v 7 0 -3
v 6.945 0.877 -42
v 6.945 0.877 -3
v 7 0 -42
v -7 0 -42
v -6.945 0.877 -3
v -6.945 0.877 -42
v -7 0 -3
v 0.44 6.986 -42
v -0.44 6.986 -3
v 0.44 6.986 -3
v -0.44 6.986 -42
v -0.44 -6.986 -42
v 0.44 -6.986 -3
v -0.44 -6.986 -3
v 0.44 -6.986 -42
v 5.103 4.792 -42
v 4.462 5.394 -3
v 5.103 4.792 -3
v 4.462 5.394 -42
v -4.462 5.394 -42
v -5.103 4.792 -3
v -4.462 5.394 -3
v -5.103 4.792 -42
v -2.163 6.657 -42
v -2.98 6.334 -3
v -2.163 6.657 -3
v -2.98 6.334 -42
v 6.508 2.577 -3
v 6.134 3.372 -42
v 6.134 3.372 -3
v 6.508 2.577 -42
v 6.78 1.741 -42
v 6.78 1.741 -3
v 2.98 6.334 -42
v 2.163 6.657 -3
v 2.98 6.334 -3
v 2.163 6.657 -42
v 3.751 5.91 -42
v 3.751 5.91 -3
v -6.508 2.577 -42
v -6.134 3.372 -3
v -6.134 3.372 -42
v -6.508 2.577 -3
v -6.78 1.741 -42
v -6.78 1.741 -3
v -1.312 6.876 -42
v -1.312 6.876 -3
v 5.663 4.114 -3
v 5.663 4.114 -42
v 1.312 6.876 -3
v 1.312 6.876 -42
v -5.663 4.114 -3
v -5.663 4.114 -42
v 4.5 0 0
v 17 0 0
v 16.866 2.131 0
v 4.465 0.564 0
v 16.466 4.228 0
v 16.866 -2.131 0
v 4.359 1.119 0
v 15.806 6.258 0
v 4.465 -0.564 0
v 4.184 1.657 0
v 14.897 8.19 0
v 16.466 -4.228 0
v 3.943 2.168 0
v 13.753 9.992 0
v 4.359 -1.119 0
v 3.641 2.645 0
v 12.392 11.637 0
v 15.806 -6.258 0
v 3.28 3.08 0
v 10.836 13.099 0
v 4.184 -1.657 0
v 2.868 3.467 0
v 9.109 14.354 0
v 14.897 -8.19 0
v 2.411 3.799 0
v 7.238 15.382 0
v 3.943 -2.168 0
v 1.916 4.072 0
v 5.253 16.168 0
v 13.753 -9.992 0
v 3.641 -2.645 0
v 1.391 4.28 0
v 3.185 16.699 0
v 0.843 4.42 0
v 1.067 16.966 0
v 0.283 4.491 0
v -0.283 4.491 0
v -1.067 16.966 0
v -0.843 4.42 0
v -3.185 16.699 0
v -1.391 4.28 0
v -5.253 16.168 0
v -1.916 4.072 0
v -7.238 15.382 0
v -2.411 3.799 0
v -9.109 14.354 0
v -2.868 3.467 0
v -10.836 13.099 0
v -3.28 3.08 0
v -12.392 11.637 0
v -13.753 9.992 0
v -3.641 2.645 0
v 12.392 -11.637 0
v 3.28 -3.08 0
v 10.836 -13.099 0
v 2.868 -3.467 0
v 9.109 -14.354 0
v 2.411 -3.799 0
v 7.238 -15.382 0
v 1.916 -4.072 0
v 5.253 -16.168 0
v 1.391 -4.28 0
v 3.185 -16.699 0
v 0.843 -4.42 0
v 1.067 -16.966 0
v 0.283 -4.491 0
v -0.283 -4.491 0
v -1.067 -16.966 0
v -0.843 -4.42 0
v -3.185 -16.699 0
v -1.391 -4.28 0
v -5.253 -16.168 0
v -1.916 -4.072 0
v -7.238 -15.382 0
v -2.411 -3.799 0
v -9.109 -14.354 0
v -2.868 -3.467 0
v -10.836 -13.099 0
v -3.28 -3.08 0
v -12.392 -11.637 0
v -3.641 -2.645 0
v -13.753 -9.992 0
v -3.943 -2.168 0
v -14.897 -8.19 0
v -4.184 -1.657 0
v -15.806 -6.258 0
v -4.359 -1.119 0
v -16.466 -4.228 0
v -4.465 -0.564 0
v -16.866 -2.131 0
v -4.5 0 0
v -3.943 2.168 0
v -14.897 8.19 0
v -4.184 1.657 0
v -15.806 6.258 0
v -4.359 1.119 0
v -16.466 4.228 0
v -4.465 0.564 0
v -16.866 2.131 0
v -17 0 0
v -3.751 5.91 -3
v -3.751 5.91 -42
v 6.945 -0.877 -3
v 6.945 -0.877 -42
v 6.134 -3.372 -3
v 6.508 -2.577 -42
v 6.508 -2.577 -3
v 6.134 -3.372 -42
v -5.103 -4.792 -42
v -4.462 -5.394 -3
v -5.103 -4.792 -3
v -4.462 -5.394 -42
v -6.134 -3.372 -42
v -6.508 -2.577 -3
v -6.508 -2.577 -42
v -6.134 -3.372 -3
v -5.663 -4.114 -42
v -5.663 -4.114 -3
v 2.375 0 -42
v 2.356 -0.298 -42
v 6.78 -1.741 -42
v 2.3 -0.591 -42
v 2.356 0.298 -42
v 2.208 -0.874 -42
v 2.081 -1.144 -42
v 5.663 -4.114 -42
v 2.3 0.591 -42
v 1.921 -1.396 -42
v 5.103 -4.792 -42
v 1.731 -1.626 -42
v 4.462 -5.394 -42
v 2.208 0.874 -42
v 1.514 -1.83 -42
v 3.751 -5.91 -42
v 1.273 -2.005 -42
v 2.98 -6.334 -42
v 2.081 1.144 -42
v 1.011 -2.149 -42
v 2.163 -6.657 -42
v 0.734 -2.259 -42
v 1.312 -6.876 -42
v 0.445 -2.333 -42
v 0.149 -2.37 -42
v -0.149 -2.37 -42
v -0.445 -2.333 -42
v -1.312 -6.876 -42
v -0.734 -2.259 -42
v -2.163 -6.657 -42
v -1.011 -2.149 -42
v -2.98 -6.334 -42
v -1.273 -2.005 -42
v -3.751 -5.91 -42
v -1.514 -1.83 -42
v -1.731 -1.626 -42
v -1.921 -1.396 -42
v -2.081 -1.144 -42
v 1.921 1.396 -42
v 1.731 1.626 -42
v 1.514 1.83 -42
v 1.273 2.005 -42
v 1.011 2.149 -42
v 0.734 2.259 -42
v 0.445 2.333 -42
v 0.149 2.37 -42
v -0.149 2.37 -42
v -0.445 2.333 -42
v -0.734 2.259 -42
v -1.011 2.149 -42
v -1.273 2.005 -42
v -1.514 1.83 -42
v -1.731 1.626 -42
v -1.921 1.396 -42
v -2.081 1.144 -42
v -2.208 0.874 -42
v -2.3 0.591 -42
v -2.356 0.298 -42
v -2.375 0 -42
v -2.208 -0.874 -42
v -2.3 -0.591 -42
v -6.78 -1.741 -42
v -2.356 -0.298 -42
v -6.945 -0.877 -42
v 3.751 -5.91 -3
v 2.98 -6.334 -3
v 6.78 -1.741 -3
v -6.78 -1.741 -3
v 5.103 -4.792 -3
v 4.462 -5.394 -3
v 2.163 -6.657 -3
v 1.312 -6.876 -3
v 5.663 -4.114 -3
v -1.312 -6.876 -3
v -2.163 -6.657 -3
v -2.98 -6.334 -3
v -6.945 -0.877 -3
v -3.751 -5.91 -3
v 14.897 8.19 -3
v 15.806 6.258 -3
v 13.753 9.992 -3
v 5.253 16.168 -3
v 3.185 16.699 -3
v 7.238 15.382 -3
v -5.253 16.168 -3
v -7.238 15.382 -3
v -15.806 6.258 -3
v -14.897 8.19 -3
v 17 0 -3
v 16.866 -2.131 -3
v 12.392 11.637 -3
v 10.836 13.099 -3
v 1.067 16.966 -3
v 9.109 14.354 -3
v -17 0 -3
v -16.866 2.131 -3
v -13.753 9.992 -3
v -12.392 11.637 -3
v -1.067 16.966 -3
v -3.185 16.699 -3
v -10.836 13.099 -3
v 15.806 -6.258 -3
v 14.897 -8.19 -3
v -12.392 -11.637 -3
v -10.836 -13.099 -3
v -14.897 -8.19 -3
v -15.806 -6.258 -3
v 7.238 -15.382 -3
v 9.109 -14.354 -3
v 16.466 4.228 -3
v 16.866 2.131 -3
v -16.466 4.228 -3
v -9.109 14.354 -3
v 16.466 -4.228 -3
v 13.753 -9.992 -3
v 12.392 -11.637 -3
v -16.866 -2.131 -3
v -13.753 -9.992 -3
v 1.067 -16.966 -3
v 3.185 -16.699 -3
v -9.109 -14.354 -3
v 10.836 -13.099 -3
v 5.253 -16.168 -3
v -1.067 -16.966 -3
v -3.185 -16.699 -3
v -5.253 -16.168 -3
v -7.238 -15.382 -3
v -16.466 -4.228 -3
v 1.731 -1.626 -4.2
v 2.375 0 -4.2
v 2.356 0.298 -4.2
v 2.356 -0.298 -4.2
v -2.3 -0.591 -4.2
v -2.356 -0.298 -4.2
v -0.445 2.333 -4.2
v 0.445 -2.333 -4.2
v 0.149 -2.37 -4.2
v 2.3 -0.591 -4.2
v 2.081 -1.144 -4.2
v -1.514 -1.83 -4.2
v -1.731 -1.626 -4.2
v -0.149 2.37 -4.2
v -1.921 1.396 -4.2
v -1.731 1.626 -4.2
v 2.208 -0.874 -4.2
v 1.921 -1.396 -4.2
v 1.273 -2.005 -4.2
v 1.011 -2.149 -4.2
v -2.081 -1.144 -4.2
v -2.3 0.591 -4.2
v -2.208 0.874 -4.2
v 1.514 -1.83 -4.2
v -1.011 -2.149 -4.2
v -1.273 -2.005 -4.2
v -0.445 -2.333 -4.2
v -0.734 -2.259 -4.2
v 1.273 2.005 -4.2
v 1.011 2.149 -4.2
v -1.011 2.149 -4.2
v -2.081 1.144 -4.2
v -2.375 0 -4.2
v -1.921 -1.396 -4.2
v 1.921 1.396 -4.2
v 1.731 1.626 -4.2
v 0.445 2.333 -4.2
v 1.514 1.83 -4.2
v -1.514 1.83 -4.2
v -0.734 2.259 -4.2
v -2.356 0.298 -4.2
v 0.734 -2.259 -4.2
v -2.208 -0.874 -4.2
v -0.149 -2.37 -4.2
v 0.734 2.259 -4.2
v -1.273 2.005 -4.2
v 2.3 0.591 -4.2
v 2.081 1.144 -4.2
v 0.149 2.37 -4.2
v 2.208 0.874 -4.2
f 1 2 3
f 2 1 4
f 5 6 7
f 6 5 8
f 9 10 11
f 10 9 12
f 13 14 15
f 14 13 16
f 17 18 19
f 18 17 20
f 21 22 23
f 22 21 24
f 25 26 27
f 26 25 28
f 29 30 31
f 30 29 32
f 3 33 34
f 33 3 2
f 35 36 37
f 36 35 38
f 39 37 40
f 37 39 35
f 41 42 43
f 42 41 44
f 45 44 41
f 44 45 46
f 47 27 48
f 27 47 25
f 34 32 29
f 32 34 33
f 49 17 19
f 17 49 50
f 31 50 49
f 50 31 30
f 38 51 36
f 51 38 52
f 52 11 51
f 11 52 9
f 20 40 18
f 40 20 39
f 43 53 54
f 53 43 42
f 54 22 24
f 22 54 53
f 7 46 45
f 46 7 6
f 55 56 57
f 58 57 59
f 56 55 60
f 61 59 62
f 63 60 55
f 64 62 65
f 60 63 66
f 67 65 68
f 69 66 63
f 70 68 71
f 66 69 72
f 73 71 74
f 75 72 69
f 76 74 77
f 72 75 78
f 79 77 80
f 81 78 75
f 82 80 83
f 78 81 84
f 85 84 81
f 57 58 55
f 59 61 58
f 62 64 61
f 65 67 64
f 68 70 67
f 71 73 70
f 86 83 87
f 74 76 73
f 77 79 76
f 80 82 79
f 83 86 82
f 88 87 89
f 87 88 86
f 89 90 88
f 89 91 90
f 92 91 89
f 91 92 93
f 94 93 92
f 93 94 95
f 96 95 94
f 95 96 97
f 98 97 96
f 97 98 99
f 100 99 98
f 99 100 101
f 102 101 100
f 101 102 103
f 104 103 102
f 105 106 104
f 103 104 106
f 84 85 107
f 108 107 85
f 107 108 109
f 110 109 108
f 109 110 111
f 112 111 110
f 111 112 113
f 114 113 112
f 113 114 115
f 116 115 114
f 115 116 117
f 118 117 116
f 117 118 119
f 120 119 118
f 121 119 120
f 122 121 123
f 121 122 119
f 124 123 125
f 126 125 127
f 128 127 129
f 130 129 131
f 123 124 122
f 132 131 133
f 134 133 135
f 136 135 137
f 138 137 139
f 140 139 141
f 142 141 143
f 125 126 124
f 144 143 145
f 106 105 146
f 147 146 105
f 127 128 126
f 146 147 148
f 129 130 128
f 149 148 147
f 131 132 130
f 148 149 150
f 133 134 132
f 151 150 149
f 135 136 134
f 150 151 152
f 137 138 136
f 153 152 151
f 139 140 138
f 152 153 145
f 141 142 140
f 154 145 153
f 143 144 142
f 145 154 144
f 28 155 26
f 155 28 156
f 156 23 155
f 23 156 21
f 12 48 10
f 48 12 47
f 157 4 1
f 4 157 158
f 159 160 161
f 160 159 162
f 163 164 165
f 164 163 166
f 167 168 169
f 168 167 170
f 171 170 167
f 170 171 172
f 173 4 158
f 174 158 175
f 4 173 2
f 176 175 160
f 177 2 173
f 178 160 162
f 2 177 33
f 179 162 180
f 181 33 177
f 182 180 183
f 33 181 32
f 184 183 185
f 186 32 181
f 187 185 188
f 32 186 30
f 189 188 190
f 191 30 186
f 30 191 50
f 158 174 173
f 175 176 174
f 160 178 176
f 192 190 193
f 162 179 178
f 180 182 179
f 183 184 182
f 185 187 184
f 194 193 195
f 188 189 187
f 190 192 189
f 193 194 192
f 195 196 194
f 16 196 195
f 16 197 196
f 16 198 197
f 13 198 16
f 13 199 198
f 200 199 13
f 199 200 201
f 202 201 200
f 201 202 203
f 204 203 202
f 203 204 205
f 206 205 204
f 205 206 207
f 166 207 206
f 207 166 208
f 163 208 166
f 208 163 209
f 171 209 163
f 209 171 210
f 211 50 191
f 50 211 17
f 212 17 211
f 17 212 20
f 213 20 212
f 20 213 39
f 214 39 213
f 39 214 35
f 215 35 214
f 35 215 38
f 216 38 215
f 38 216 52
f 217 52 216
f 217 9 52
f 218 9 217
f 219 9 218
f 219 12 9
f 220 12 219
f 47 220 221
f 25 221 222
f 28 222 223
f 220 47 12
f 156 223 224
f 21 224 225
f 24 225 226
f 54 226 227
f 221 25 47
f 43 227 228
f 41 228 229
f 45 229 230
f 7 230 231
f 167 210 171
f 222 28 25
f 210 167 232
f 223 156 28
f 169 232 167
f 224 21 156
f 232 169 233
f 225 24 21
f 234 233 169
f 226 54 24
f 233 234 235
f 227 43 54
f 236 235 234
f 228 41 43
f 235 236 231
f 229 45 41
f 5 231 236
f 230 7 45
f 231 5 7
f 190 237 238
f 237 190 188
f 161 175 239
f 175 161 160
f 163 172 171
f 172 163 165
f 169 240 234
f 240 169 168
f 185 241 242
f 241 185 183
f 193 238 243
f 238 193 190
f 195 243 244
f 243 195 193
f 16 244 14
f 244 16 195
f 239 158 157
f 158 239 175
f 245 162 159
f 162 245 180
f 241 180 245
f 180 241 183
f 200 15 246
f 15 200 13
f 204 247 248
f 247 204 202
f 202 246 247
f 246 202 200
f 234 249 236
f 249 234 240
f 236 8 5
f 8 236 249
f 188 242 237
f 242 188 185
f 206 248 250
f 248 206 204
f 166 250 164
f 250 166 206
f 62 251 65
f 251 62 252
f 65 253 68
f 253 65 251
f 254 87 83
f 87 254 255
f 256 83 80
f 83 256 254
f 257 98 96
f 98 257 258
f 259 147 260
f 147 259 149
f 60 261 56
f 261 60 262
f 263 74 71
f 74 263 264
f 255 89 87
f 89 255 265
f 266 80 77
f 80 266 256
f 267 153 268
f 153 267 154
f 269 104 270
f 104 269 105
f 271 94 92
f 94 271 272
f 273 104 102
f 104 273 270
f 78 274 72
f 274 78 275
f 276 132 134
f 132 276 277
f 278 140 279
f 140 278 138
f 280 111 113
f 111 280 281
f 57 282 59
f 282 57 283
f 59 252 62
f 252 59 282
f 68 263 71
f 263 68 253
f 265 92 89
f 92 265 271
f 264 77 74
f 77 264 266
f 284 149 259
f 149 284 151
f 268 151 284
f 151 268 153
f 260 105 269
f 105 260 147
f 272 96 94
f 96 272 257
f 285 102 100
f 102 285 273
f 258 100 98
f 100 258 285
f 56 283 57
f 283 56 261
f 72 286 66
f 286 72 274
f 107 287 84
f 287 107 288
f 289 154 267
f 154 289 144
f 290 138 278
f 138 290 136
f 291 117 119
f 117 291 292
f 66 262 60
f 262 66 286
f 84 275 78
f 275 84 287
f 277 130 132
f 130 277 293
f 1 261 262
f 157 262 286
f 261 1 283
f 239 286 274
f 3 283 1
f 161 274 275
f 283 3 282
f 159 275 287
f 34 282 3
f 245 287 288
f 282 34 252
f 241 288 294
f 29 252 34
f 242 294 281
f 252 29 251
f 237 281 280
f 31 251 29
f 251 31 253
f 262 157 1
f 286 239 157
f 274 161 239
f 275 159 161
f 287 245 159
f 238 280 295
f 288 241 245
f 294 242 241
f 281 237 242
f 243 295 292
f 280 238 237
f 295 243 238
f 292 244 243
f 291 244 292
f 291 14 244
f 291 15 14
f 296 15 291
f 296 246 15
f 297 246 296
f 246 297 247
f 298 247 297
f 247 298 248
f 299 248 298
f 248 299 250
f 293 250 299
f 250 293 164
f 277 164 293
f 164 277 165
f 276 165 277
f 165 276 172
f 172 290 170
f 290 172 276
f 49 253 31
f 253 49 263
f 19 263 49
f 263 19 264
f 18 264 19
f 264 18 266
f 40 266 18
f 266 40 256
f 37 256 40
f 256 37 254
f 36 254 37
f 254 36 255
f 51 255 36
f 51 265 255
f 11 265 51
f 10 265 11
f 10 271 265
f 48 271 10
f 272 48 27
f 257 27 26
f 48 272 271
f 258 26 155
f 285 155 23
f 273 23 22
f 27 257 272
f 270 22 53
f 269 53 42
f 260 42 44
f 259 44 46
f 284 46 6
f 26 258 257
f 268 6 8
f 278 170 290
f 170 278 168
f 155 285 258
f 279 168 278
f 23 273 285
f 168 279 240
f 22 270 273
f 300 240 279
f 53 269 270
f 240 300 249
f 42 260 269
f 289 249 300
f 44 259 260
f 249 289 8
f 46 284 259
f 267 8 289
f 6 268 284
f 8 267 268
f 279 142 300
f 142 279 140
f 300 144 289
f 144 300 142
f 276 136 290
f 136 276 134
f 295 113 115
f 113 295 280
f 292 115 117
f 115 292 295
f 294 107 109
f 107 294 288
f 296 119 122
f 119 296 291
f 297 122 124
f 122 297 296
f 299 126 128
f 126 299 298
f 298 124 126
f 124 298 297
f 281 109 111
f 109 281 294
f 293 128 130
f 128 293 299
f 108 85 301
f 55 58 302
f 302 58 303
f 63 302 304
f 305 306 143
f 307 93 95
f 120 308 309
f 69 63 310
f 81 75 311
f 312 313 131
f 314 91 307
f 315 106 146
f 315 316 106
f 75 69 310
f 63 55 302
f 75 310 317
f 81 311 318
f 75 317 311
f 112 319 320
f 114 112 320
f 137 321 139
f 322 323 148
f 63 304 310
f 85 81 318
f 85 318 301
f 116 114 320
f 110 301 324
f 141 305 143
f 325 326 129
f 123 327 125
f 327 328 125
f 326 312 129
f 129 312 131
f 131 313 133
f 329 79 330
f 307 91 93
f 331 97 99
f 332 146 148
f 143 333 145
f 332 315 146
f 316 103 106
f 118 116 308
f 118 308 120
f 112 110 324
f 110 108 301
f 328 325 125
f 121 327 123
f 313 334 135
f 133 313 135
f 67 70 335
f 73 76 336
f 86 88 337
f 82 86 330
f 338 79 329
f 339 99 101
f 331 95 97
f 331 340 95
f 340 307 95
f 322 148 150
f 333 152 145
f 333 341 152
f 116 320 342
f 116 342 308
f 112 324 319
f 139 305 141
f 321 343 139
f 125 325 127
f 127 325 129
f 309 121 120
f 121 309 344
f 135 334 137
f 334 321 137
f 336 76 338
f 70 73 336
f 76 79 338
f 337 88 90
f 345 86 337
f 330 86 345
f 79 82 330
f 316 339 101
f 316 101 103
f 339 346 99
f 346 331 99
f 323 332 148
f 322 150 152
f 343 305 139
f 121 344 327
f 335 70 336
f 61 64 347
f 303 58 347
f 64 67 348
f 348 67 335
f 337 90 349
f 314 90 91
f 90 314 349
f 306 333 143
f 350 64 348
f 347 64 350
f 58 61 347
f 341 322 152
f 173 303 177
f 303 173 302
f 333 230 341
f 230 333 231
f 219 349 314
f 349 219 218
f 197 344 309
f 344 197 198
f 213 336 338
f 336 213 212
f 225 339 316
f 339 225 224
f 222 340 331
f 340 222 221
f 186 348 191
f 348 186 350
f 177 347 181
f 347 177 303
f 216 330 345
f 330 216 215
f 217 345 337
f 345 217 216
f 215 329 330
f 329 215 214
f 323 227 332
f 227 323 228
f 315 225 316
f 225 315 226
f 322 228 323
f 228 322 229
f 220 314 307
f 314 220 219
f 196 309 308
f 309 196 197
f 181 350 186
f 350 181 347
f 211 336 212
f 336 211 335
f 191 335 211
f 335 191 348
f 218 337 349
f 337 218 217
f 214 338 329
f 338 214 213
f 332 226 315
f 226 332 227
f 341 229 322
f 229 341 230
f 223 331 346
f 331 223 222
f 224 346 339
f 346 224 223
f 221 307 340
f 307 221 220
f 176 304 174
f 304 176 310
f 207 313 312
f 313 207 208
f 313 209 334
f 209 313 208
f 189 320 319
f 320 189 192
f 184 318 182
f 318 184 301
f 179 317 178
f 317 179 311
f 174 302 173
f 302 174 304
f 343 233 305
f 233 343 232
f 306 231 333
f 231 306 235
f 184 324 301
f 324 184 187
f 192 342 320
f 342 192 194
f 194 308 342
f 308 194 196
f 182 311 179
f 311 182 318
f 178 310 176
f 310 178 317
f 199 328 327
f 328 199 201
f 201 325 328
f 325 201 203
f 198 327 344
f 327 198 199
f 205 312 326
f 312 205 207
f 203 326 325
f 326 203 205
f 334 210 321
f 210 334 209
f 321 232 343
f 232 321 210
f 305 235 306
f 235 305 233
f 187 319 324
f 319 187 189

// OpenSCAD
$fn = 50;


difference() {
	union() {
		translate(v = [0, 0, -42.0000000000]) {
			cylinder(h = 42, r = 7.0000000000);
		}
		translate(v = [0, 0, -3.0000000000]) {
			cylinder(h = 3, r = 17.0000000000);
		}
	}
	union() {
		translate(v = [0, 0, 0]) {
			rotate(a = [0, 0, 0]) {
				difference() {
					union() {
						#translate(v = [0, 0, -42.0000000000]) {
							cylinder(h = 42, r = 2.2500000000);
						}
						#translate(v = [0, 0, -4.2000000000]) {
							cylinder(h = 4.2000000000, r1 = 2.3750000000, r2 = 4.5000000000);
						}
						#translate(v = [0, 0, -42.0000000000]) {
							cylinder(h = 42, r = 2.3750000000);
						}
						#translate(v = [0, 0, -42.0000000000]) {
							cylinder(h = 42, r = 2.2500000000);
						}
					}
					union();
				}
			}
		}
	}
}
